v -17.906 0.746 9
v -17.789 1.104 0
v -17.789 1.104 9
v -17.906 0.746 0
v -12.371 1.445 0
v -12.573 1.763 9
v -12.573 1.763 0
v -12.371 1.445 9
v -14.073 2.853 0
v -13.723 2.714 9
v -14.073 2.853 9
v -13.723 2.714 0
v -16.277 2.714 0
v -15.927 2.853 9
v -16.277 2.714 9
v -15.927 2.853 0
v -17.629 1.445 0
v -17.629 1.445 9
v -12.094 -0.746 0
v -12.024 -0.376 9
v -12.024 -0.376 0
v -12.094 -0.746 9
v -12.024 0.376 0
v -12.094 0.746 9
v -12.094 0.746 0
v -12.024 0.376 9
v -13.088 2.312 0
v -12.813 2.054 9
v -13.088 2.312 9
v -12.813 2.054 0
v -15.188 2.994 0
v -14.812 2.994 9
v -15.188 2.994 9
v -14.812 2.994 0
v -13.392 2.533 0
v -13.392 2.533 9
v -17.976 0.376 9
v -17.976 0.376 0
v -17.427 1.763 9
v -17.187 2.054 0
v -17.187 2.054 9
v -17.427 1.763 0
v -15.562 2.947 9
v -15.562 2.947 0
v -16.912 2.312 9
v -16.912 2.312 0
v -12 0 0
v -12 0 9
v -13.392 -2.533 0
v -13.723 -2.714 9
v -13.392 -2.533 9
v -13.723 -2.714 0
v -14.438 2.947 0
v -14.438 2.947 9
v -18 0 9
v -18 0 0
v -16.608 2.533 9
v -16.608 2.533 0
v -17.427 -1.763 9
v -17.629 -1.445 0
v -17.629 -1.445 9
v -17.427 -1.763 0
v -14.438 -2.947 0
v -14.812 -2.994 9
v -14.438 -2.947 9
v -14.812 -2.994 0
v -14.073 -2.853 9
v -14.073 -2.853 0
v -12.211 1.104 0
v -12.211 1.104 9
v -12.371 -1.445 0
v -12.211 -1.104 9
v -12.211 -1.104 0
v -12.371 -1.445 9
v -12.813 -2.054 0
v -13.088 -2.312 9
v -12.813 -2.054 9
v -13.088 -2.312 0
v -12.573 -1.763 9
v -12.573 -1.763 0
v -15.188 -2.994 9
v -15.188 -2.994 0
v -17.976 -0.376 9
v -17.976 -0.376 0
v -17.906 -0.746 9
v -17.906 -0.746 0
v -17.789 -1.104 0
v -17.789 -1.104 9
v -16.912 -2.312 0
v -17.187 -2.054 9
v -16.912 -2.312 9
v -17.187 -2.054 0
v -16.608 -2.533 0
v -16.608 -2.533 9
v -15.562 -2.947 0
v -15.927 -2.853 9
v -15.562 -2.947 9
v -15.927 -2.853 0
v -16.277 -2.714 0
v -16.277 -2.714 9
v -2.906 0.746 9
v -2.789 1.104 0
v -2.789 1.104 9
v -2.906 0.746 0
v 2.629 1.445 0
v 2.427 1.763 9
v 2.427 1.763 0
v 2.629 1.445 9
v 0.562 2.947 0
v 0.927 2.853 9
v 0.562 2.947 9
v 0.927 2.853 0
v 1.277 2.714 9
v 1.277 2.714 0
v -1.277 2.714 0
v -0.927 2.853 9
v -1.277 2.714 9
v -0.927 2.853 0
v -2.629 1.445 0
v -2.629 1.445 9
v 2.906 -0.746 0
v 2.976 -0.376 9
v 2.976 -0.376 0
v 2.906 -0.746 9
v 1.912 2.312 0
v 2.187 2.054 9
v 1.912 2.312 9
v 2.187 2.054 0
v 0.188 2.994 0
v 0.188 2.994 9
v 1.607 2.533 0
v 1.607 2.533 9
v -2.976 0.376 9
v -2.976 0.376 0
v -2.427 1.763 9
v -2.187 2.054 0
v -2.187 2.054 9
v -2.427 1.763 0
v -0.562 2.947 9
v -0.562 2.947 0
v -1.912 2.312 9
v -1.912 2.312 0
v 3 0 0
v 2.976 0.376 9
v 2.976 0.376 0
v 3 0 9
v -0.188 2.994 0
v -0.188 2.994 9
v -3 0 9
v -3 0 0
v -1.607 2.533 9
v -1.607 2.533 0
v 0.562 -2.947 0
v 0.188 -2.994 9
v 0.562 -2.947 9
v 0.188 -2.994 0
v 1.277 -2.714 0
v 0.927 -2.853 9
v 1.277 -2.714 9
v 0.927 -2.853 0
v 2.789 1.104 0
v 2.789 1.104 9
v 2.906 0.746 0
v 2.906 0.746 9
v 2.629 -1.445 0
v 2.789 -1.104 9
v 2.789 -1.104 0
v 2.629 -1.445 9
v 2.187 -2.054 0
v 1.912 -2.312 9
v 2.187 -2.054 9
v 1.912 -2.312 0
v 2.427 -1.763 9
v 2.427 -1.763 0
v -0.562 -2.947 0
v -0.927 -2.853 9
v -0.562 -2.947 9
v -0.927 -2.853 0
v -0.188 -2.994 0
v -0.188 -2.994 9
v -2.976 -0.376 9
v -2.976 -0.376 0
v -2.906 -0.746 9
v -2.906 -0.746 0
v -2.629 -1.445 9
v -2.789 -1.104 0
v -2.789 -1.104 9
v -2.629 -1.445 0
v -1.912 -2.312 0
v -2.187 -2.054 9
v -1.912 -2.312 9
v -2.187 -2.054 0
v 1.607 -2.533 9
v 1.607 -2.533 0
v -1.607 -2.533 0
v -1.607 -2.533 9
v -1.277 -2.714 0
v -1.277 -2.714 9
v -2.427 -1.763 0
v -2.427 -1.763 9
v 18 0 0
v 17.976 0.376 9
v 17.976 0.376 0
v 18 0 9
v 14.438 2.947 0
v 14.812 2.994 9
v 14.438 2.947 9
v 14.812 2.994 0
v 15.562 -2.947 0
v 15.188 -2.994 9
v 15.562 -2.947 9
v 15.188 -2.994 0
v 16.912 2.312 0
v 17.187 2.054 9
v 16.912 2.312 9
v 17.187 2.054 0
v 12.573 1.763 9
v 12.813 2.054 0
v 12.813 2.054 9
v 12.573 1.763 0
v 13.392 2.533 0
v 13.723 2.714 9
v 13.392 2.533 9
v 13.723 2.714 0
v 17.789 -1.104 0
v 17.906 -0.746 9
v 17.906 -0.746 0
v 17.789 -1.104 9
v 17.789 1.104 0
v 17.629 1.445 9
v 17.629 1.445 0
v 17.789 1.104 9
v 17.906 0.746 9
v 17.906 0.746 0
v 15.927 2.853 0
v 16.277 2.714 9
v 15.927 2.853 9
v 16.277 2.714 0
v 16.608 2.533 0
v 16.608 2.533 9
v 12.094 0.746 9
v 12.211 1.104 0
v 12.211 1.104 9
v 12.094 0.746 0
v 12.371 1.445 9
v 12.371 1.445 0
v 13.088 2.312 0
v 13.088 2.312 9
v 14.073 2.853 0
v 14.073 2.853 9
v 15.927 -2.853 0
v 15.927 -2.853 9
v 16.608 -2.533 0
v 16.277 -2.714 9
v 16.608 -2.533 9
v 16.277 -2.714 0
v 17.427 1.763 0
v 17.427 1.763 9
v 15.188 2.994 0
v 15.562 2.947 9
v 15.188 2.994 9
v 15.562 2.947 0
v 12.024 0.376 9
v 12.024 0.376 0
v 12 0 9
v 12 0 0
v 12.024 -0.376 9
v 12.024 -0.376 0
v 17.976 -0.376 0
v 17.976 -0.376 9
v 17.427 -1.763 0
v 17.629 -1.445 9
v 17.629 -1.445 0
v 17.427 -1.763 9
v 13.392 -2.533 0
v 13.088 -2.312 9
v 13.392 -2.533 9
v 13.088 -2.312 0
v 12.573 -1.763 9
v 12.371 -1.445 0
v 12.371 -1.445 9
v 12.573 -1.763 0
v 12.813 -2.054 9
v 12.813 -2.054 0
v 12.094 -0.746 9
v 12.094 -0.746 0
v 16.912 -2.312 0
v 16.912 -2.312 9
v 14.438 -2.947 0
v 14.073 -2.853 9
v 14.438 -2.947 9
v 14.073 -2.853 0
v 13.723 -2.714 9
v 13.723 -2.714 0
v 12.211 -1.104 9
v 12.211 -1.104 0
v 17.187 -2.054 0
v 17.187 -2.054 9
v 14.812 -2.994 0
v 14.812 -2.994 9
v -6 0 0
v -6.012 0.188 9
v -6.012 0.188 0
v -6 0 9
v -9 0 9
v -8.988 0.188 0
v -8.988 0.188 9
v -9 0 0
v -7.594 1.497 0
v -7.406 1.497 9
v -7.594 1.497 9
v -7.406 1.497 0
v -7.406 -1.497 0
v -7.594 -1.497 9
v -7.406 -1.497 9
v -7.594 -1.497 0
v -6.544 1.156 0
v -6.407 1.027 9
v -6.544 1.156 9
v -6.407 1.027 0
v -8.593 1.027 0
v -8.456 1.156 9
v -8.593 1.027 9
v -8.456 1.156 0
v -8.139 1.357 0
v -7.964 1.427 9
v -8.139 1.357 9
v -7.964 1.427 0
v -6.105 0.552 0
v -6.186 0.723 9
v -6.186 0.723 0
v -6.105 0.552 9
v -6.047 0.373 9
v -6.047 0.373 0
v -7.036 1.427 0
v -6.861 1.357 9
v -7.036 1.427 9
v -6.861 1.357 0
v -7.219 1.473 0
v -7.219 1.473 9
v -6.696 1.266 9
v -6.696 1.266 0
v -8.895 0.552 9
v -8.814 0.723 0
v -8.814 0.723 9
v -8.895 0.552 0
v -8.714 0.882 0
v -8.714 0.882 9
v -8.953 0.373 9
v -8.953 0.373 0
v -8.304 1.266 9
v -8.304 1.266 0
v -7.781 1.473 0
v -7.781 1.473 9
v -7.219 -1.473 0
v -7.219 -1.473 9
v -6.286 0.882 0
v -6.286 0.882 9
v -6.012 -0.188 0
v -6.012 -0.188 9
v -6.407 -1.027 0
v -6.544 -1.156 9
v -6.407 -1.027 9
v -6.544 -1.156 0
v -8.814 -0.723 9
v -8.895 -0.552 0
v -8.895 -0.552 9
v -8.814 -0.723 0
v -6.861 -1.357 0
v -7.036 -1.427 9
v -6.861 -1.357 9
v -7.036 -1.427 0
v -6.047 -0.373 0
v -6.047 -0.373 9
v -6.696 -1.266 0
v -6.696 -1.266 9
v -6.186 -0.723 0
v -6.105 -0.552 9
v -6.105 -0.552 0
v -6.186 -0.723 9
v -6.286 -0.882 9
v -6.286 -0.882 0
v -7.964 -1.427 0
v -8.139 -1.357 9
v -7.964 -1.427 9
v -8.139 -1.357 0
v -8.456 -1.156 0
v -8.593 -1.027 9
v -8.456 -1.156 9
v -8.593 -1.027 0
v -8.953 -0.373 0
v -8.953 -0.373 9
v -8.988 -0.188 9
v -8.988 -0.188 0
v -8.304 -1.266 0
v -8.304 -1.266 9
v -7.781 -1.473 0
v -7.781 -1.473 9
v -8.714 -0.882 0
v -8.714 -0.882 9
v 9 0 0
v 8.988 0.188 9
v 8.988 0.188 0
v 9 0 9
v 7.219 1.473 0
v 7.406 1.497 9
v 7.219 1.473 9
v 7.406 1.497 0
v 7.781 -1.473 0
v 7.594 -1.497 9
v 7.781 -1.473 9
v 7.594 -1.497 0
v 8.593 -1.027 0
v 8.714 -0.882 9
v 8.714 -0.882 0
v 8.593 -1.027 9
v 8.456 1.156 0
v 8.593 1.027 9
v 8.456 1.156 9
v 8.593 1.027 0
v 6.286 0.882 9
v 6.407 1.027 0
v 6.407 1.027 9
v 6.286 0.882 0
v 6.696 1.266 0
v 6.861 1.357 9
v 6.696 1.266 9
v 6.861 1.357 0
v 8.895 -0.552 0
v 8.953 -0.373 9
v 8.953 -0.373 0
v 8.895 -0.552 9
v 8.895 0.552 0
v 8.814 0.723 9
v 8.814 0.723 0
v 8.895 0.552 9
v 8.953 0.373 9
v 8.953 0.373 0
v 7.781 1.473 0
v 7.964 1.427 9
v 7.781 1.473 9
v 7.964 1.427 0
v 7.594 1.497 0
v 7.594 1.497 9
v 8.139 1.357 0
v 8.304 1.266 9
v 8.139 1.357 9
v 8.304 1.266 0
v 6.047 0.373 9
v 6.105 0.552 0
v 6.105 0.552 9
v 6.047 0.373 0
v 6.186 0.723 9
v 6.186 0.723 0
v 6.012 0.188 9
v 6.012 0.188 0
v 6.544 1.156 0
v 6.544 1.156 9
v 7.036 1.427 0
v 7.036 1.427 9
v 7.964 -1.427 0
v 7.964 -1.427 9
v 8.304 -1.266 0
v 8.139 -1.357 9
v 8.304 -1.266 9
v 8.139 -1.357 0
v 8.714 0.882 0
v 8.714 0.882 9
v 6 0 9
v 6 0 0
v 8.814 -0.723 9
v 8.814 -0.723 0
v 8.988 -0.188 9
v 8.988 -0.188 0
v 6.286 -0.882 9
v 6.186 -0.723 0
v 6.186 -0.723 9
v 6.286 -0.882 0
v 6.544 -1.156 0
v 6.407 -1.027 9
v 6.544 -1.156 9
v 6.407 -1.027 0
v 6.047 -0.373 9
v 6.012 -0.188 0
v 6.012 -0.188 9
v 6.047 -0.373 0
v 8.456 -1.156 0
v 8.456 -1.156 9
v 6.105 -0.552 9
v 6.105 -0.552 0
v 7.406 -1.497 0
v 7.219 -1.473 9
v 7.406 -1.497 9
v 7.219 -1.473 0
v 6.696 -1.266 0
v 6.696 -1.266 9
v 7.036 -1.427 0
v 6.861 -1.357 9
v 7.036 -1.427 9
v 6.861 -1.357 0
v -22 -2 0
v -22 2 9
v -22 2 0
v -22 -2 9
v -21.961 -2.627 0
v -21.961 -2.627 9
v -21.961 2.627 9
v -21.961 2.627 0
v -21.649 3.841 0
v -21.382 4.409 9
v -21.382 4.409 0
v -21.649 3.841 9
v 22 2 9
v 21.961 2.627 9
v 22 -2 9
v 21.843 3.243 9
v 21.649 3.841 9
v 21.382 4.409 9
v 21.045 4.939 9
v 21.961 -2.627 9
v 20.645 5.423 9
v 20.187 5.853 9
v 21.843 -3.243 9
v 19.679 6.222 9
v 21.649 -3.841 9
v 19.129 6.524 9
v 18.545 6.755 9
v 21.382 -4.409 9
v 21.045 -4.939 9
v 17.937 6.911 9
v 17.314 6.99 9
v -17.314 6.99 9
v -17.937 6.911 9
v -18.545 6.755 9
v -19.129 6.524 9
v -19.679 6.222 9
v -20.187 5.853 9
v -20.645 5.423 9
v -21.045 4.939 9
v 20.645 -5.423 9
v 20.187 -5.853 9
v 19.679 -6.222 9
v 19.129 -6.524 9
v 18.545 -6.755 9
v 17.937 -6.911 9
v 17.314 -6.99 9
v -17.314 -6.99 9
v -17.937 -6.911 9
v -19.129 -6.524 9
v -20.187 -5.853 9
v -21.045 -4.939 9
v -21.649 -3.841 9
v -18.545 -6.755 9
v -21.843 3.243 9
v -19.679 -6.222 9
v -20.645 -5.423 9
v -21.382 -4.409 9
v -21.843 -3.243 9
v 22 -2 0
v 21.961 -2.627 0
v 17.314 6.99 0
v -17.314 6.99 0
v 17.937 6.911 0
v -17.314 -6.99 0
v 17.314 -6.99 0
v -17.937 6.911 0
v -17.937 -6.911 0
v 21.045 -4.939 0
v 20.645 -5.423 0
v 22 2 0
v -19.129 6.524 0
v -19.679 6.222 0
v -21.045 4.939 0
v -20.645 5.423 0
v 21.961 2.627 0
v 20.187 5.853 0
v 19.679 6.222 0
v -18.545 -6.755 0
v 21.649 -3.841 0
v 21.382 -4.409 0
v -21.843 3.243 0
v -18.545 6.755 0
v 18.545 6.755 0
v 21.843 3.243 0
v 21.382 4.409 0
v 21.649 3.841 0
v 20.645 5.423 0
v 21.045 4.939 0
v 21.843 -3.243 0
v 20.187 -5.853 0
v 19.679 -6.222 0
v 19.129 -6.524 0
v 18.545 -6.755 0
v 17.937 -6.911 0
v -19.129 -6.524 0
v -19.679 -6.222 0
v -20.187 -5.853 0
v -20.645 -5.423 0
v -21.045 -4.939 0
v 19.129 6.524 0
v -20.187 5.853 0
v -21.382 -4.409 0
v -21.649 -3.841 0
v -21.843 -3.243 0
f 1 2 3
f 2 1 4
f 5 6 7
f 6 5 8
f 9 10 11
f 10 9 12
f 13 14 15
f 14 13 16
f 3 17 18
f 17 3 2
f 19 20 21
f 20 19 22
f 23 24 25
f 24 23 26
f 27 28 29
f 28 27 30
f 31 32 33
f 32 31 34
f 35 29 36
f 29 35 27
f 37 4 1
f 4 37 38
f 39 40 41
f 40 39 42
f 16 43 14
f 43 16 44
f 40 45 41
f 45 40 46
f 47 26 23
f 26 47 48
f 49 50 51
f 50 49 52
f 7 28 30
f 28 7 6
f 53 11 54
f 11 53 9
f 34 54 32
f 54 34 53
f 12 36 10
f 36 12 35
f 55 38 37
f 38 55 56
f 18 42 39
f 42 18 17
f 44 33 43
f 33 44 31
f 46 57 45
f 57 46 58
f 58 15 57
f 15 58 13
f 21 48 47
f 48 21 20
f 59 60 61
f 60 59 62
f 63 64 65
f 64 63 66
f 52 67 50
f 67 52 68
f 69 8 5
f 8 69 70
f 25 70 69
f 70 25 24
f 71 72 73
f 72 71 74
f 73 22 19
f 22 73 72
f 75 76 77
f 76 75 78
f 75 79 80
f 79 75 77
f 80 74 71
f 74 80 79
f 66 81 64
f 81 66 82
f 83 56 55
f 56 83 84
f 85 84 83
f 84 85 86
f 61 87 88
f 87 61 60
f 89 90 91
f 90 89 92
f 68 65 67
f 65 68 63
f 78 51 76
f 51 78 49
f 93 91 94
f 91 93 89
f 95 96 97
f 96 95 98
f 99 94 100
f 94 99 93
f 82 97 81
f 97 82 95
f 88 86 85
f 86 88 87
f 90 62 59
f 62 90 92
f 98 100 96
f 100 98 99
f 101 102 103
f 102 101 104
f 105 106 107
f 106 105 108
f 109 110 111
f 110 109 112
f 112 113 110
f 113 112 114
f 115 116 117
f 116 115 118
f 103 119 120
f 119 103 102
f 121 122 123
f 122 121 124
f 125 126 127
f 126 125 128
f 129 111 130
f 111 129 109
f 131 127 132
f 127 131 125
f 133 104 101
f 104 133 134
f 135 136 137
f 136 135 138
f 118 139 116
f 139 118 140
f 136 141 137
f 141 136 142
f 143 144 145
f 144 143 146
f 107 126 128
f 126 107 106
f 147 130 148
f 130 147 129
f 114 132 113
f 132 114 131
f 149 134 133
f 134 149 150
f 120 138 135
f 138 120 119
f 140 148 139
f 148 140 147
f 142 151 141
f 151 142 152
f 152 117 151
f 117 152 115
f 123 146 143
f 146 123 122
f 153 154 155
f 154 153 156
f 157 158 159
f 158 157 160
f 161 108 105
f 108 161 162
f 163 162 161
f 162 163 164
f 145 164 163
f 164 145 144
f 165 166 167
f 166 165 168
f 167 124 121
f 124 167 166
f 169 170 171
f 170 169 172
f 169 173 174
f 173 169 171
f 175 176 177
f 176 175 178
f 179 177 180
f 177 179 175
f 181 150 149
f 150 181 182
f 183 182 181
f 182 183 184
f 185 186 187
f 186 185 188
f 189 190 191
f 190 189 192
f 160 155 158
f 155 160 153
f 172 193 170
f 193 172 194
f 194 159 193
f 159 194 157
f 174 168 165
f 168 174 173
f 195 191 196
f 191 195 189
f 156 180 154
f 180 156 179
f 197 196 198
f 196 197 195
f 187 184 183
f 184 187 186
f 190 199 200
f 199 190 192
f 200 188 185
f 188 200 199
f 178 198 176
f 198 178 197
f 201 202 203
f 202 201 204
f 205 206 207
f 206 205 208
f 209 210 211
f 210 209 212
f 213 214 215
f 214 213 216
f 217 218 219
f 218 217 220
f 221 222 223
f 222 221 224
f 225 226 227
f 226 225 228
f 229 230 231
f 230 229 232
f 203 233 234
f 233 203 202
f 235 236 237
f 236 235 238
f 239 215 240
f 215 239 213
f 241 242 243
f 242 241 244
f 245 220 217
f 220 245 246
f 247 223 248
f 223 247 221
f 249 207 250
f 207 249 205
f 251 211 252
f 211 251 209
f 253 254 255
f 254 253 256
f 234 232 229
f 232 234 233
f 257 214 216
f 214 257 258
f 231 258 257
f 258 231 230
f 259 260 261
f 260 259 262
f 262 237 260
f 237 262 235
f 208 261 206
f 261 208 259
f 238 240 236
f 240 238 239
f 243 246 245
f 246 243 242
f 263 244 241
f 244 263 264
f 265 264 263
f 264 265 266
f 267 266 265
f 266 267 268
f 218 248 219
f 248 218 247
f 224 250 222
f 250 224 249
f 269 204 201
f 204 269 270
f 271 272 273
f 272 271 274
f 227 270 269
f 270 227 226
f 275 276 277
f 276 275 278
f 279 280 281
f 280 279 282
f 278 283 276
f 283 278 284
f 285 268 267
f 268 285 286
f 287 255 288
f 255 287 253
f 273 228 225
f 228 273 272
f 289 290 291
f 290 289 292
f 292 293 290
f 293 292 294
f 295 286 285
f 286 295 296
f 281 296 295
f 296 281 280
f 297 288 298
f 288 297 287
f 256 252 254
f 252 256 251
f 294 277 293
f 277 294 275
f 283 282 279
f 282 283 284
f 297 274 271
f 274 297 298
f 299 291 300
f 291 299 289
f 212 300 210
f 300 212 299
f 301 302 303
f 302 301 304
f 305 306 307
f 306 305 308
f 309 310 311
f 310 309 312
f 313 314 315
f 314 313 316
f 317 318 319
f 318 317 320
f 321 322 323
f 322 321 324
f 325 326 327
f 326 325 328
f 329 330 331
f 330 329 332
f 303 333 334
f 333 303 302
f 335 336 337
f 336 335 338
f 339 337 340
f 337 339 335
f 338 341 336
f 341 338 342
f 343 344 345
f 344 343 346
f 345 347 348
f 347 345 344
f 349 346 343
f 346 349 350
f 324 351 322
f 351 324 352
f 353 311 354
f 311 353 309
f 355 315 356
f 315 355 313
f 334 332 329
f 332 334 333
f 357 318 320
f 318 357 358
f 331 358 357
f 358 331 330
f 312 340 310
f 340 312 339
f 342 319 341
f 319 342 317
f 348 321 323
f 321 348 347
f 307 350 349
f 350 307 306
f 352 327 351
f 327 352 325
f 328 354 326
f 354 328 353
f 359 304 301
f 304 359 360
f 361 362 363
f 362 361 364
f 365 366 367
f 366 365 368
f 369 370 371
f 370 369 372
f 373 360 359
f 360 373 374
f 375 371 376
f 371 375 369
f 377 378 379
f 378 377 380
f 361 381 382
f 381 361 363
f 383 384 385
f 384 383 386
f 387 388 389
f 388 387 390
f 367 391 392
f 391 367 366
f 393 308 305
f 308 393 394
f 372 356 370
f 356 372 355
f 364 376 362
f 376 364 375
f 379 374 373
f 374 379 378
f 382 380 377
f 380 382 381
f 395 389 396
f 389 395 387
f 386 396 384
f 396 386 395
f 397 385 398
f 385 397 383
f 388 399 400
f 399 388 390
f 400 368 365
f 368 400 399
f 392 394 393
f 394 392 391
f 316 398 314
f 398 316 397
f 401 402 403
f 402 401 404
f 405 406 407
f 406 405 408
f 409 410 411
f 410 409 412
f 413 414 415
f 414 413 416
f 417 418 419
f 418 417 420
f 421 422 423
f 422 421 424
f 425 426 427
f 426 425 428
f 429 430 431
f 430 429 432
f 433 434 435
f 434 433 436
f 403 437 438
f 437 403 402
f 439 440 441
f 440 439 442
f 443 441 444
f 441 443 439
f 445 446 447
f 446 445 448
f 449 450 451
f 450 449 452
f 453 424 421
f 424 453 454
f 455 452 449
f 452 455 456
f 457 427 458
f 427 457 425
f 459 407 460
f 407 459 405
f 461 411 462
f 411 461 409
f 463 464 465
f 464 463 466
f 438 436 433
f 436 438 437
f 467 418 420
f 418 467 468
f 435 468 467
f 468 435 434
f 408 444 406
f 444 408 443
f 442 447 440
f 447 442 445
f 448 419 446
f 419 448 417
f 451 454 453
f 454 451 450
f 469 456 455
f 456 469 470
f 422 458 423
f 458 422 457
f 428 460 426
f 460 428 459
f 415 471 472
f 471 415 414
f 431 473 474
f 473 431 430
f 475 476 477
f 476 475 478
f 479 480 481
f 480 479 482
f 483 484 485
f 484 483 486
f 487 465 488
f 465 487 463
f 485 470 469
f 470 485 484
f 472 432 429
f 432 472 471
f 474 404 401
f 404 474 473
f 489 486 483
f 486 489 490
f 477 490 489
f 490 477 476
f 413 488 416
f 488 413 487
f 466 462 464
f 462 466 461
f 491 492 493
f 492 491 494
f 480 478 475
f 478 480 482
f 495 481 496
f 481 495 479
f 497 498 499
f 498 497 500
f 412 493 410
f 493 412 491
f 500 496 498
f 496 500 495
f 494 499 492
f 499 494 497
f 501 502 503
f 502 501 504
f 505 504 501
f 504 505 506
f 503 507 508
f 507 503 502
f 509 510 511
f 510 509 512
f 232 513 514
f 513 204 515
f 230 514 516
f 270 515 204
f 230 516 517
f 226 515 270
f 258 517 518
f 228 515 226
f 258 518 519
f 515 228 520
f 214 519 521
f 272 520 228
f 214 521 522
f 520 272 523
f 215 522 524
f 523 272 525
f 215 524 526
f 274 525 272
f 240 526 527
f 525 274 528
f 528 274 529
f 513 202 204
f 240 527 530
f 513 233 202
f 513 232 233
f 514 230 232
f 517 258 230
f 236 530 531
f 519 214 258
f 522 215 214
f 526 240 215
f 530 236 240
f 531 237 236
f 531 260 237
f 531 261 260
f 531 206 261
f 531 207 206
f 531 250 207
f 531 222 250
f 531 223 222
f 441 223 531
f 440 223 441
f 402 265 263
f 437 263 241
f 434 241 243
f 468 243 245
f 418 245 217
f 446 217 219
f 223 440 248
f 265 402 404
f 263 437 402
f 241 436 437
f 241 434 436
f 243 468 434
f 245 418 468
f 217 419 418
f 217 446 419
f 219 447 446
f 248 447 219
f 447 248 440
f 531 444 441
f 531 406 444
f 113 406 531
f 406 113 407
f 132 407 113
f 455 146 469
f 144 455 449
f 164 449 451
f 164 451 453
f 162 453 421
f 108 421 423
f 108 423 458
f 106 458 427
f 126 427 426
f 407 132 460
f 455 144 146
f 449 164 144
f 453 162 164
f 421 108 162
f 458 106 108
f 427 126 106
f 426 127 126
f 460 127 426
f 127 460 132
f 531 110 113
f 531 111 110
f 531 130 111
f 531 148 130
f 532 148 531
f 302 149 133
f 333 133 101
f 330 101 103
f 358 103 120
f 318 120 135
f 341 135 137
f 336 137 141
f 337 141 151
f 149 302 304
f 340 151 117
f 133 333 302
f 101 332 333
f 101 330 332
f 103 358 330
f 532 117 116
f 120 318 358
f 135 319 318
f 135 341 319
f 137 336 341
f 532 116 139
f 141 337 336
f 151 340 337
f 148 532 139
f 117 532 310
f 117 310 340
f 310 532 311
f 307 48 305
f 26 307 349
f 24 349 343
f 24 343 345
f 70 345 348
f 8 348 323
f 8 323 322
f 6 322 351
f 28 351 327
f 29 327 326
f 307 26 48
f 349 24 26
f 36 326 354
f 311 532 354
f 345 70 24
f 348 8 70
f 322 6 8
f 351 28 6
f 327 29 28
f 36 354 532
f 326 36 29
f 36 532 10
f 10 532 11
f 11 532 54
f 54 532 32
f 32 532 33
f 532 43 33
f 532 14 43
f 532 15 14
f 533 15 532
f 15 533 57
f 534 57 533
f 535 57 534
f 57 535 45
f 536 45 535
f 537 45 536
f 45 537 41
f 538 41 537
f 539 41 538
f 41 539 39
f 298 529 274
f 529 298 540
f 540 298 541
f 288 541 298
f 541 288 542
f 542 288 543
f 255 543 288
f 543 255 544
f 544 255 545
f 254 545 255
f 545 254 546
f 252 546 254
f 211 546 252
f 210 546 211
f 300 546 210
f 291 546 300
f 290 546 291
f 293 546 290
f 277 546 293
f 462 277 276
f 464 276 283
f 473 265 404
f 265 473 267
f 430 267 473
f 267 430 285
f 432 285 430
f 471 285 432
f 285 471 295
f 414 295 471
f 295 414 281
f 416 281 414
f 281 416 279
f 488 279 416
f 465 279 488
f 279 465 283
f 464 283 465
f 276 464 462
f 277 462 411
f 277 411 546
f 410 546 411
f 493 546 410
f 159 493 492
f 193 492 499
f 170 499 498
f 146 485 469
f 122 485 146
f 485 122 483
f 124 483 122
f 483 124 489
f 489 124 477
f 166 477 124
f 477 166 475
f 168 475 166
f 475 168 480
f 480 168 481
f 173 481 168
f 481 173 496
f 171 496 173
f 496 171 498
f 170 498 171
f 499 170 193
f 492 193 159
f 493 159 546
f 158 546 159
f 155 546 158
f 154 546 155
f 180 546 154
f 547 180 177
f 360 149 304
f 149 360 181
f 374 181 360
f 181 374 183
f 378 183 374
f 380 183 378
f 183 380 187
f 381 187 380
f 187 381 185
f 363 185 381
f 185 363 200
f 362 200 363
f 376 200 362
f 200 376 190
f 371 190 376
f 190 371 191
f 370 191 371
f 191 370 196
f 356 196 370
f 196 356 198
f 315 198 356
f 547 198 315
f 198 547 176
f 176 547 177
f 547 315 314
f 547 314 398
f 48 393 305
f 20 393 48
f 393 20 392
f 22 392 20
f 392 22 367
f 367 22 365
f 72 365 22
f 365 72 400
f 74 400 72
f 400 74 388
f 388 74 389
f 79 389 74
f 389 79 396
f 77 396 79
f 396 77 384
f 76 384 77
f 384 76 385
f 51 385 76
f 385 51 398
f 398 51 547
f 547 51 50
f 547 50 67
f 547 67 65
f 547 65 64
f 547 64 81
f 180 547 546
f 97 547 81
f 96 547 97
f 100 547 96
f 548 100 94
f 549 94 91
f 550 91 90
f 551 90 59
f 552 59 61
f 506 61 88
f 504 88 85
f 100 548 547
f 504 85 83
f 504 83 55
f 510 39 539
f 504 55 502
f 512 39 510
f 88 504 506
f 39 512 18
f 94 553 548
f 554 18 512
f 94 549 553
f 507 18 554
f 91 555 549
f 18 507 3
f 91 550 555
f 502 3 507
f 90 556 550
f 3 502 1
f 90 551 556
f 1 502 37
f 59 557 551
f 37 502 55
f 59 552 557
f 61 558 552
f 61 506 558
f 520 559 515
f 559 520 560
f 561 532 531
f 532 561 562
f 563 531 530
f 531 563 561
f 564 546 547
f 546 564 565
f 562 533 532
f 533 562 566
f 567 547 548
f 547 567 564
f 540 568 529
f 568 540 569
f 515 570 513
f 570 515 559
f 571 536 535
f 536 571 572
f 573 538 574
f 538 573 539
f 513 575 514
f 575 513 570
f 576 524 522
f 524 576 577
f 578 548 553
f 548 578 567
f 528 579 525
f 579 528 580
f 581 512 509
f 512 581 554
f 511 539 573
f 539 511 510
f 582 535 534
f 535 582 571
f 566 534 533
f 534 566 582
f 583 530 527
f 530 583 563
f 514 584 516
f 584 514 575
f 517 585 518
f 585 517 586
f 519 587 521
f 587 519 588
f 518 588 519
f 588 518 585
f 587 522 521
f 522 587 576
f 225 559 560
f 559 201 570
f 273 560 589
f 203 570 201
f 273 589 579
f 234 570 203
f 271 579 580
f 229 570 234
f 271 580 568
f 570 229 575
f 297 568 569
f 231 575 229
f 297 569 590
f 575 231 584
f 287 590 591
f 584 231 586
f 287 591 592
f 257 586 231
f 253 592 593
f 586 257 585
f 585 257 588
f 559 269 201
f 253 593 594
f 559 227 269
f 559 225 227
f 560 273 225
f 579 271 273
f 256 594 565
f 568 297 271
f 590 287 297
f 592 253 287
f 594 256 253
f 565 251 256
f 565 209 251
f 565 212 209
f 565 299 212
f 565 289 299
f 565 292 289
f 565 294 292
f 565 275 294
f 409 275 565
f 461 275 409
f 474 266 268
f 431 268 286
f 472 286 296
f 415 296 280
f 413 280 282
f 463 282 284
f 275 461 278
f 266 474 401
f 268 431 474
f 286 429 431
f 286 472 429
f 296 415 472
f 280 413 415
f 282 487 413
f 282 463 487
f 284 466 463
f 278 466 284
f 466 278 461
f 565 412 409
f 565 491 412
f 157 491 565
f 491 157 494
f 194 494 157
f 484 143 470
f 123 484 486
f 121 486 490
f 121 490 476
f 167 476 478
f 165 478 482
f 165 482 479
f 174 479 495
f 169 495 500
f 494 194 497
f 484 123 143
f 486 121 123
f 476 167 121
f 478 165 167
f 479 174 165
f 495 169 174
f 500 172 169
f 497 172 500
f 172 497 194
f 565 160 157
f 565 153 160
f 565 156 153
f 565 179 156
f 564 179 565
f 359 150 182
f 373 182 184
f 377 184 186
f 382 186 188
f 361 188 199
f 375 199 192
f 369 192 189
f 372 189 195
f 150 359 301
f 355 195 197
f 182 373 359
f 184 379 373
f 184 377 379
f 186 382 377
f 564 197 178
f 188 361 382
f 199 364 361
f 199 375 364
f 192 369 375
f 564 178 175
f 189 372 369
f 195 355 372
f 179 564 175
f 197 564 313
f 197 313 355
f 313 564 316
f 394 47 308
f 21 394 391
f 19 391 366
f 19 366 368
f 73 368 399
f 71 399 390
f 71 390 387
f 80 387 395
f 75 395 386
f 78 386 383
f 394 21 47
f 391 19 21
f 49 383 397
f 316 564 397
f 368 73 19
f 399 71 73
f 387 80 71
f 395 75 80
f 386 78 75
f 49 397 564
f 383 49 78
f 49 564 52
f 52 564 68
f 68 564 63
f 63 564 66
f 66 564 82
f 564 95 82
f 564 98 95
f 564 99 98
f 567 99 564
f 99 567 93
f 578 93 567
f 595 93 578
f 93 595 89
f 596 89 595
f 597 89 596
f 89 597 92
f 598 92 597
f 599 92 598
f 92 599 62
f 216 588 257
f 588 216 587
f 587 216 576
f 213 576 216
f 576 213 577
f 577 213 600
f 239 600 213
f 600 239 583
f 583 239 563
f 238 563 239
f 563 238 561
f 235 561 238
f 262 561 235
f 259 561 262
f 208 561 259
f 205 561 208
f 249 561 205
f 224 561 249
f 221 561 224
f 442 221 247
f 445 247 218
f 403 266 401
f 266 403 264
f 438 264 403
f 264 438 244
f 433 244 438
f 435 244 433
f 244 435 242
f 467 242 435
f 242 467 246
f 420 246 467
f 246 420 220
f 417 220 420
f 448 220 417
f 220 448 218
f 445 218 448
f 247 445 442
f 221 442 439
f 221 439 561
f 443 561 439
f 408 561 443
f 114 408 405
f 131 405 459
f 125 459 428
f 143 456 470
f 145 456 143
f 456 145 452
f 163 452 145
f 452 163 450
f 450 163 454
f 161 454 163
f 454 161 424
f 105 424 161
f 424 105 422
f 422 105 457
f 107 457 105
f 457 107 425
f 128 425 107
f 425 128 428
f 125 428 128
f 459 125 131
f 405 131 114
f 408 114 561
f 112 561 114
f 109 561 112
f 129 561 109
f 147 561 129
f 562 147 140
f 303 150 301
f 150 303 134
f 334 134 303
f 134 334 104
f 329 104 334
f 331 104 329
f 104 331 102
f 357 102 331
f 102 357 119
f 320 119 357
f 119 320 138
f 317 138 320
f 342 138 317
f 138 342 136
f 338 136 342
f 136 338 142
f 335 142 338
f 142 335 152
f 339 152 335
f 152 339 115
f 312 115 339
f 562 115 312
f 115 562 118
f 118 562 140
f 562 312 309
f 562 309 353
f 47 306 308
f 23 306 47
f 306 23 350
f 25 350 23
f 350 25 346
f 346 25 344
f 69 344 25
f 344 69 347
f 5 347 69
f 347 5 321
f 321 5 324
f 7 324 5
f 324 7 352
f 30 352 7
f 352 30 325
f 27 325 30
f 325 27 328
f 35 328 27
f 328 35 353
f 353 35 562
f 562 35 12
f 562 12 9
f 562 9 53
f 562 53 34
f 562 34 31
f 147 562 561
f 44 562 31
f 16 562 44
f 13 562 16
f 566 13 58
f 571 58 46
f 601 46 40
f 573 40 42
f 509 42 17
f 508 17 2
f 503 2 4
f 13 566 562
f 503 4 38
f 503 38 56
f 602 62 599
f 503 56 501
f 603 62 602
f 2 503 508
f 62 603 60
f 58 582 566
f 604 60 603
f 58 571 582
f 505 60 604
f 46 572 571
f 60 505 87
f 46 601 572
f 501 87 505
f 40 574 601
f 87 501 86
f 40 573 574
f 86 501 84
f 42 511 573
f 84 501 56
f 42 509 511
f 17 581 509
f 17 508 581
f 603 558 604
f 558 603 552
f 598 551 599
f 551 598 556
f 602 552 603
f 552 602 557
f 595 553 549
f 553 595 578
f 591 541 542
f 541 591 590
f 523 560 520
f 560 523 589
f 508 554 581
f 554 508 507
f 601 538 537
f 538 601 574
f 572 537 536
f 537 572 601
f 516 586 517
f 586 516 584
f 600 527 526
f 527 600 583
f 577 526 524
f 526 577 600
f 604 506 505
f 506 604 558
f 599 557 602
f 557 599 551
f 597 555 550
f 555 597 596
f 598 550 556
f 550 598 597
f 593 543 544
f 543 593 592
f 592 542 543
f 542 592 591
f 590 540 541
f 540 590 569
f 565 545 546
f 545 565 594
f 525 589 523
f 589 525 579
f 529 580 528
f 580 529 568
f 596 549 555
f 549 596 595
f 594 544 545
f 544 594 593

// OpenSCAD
$fn = 50;


difference() {
	union() {
		*color(alpha = 1.0000000000, c = "gray") {
			translate(v = [0, 7, 0]) {
				linear_extrude(height = 1) {
					text(font = "Arial:style=Bold", halign = "center", size = 4.5000000000, text = "COMMENT plate main", valign = "center");
				}
			}
		}
		*color(alpha = 1.0000000000, c = "gray") {
			translate(v = [0, 14, 0]) {
				linear_extrude(height = 1) {
					text(font = "Arial:style=Bold", halign = "center", size = 4.5000000000, text = "COMMENT description oobb_plate_shape_p_type_9_depth_3_width_1_height_9_thickness_true_both_holes", valign = "center");
				}
			}
		}
		hull() {
			translate(v = [-17.0000000000, 2.0000000000, 0]) {
				cylinder(h = 9, r = 5);
			}
			translate(v = [17.0000000000, 2.0000000000, 0]) {
				cylinder(h = 9, r = 5);
			}
			translate(v = [-17.0000000000, -2.0000000000, 0]) {
				cylinder(h = 9, r = 5);
			}
			translate(v = [17.0000000000, -2.0000000000, 0]) {
				cylinder(h = 9, r = 5);
			}
		}
	}
	union() {
		*color(alpha = 1.0000000000, c = "gray") {
			translate(v = [0, 7, 0]) {
				linear_extrude(height = 1) {
					text(font = "Arial:style=Bold", halign = "center", size = 4.5000000000, text = "COMMENT holes main", valign = "center");
				}
			}
		}
		*color(alpha = 1.0000000000, c = "gray") {
			translate(v = [0, 14, 0]) {
				linear_extrude(height = 1) {
					text(font = "Arial:style=Bold", halign = "center", size = 4.5000000000, text = "COMMENT description oobb_holes_shape_n_type_3_width_1_height_9_thickness_true_both_holes", valign = "center");
				}
			}
		}
		translate(v = [-15.0000000000, 0.0000000000, 0]) {
			translate(v = [0, 0, -50]) {
				cylinder(h = 100, r = 3.0000000000);
			}
		}
		translate(v = [0, 0, -50]) {
			cylinder(h = 100, r = 3.0000000000);
		}
		translate(v = [15.0000000000, 0.0000000000, 0]) {
			translate(v = [0, 0, -50]) {
				cylinder(h = 100, r = 3.0000000000);
			}
		}
		translate(v = [-15.0000000000, 0.0000000000, 0]) {
			translate(v = [0, 0, -50]) {
				cylinder(h = 100, r = 1.5000000000);
			}
		}
		translate(v = [-7.5000000000, 0.0000000000, 0]) {
			translate(v = [0, 0, -50]) {
				cylinder(h = 100, r = 1.5000000000);
			}
		}
		translate(v = [0, 0, -50]) {
			cylinder(h = 100, r = 1.5000000000);
		}
		translate(v = [7.5000000000, 0.0000000000, 0]) {
			translate(v = [0, 0, -50]) {
				cylinder(h = 100, r = 1.5000000000);
			}
		}
		translate(v = [15.0000000000, 0.0000000000, 0]) {
			translate(v = [0, 0, -50]) {
				cylinder(h = 100, r = 1.5000000000);
			}
		}
	}
}
